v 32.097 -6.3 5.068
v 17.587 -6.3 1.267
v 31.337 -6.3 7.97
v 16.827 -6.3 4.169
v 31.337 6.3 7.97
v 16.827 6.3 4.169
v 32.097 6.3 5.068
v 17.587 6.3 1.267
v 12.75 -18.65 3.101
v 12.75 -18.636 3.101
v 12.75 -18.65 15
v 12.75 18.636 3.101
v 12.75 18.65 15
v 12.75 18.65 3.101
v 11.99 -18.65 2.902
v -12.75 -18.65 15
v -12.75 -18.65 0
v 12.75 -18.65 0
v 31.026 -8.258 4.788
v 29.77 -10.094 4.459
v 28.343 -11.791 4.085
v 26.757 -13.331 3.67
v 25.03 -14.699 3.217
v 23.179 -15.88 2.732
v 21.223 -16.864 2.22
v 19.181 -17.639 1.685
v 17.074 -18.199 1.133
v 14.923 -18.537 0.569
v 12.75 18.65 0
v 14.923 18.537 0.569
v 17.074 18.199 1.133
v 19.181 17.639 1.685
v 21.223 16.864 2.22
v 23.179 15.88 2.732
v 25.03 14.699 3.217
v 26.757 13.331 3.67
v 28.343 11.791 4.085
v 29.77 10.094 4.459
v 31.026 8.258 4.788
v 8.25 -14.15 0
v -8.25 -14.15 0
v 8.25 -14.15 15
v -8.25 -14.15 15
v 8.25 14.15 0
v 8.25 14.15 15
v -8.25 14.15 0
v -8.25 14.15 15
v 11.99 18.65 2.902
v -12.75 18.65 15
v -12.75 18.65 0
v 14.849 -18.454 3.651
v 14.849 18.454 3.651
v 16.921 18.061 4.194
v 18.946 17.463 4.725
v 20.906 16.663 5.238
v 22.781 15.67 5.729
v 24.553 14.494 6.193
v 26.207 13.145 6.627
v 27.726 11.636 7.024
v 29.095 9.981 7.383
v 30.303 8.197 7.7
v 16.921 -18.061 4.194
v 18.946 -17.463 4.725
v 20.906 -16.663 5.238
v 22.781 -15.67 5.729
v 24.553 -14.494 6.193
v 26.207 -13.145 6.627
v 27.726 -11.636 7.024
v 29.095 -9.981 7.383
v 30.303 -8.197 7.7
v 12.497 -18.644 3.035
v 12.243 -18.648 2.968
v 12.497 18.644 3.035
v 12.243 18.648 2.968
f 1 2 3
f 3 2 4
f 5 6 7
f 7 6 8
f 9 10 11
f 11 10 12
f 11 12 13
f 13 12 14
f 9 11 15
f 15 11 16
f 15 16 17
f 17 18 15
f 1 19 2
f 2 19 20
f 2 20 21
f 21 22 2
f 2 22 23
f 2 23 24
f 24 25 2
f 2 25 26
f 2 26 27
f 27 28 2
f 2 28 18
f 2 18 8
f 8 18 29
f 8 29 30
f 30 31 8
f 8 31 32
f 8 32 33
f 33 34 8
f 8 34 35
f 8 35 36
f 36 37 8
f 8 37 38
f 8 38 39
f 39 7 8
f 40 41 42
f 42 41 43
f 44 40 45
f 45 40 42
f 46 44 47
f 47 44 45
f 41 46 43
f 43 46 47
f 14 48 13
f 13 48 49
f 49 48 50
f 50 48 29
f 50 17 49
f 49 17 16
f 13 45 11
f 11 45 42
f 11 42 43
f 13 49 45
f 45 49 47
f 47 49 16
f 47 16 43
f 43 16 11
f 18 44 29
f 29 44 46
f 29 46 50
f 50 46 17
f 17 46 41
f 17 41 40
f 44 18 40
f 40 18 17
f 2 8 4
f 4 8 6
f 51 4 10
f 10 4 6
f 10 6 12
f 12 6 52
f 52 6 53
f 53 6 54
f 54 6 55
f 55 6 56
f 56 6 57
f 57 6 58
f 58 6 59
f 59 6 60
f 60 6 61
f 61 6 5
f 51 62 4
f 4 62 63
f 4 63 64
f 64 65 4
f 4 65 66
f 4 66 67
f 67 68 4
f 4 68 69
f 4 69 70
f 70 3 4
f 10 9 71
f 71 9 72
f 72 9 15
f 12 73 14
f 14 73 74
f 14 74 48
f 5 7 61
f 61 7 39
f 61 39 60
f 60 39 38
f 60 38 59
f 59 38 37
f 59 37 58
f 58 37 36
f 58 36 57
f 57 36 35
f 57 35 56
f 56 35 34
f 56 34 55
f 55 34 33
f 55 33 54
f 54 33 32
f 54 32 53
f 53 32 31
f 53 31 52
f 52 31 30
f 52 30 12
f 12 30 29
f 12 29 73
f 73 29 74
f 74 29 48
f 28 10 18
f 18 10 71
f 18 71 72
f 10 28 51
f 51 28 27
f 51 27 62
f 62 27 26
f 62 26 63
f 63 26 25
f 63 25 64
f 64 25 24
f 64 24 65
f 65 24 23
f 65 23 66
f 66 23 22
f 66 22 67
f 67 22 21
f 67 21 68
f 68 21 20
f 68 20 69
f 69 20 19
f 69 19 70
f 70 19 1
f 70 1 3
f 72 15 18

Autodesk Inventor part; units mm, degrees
ref_plane "YZ Plane" through (0, 0, 0) normal (1, 0, 0) x (0, 1, 0)
ref_plane "XZ Plane" through (0, 0, 0) normal (0, 1, 0) x (-1, 0, 0)
sketch "Sketch1" plane through (0, 0, 0) normal (0, 0, 1) x (1, 0, 0)
  line L0 (-8.25, -14.15) -> (8.25, -14.15)
  line L1 (8.25, -14.15) -> (8.25, 14.15)
  line L2 (8.25, 14.15) -> (-8.25, 14.15)
  line L3 (-8.25, 14.15) -> (-8.25, -14.15)
  line L4 (-8.25, -14.15) -> (8.25, 14.15) construction
  line L5 (8.25, -14.15) -> (-8.25, 14.15) construction
  line L6 (-12.75, -18.65) -> (12.75, -18.65)
  line L7 (12.75, -18.65) -> (12.75, 18.65)
  line L8 (12.75, 18.65) -> (-12.75, 18.65)
  line L9 (-12.75, 18.65) -> (-12.75, -18.65)
  point P0 (0, 0)
  dimension "d0" = 16.5
  dimension "d1" = 28.3
  dimension "d2" = 4.5
extrude "Extrusion1" add sketch "Sketch1" along normal blind 15
ref_plane "Work Plane1" through (12.75, -18.65, 0) normal (-0.2534, 0, 0.9674) x (0, 1, 0)
sketch "Sketch2" plane through (12.75, -18.65, 0) normal (-0.2534, 0, 0.9674) x (0, 1, 0)
  line L0 (37.3, 0) -> (37.3, 24.6676) construction
  line L1 (37.3, 0) -> (0, 0)
  line L2 (0, 0) -> (0, -20)
  line L3 (0, -20) -> (37.3, -20)
  line L4 (37.3, -20) -> (37.3, 0)
  point P0 (18.65, 12.3338)
  dimension "d6" = 20
extrude "Extrusion2" add sketch "Sketch2" along normal blind 3
sketch "Sketch5" plane through (12.75, -18.65, 0) normal (0.2534, 0, -0.9674) x (-0.9674, 0, -0.2534)
  line L0 (-35, 24.95) -> (-5, 24.95)
  line L1 (-5, 24.95) -> (-5, 12.35)
  line L2 (-5, 12.35) -> (-35, 12.35)
  line L3 (-35, 12.35) -> (-35, 24.95)
  line L4 (-20, 0) -> (-20, 37.3) construction
  line L5 (-35, 24.95) -> (-5, 12.35) construction
  line L6 (-5, 24.95) -> (-35, 12.35) construction
  point P0 (12.3338, 18.65)
  point P1 (-20, 18.65)
  dimension "d15" = 30
  dimension "d16" = 12.6
extrude "Extrusion5" cut sketch "Sketch5" against normal blind 3
sketch "Sketch6" plane through (12.75, -18.65, 0) normal (0.2534, 0, -0.9674) x (-0.9674, 0, -0.2534)
  line L0 (0, 0) -> (-20, 0) construction
  line L1 (-20, 37.3) -> (0, 37.3) construction
  line L2 (-5, 24.95) -> (-20, 24.95) construction
  line L3 (-20, 12.35) -> (-5, 12.35) construction
  arc A0 (-20, 12.35) -> (0, 0) centre (0, 22.3693) ccw
  line L4 (-20, 0) -> (0, 0)
  line L5 (-20, 37.3) -> (-20, 24.95)
  line L6 (-20, 12.35) -> (-20, 0)
  arc A1 (0, 37.3) -> (-20, 24.95) centre (0, 14.9307) ccw
  line L7 (-20, 37.3) -> (-0.7859, 37.3) construction
  line L8 (0, 37.3) -> (-20, 37.3)
  point P0 (12.3338, 18.65)
  point P1 (0, 0)
extrude "Extrusion6" cut sketch "Sketch6" against normal blind 3
properties part number "Servo front rightleft holder"
